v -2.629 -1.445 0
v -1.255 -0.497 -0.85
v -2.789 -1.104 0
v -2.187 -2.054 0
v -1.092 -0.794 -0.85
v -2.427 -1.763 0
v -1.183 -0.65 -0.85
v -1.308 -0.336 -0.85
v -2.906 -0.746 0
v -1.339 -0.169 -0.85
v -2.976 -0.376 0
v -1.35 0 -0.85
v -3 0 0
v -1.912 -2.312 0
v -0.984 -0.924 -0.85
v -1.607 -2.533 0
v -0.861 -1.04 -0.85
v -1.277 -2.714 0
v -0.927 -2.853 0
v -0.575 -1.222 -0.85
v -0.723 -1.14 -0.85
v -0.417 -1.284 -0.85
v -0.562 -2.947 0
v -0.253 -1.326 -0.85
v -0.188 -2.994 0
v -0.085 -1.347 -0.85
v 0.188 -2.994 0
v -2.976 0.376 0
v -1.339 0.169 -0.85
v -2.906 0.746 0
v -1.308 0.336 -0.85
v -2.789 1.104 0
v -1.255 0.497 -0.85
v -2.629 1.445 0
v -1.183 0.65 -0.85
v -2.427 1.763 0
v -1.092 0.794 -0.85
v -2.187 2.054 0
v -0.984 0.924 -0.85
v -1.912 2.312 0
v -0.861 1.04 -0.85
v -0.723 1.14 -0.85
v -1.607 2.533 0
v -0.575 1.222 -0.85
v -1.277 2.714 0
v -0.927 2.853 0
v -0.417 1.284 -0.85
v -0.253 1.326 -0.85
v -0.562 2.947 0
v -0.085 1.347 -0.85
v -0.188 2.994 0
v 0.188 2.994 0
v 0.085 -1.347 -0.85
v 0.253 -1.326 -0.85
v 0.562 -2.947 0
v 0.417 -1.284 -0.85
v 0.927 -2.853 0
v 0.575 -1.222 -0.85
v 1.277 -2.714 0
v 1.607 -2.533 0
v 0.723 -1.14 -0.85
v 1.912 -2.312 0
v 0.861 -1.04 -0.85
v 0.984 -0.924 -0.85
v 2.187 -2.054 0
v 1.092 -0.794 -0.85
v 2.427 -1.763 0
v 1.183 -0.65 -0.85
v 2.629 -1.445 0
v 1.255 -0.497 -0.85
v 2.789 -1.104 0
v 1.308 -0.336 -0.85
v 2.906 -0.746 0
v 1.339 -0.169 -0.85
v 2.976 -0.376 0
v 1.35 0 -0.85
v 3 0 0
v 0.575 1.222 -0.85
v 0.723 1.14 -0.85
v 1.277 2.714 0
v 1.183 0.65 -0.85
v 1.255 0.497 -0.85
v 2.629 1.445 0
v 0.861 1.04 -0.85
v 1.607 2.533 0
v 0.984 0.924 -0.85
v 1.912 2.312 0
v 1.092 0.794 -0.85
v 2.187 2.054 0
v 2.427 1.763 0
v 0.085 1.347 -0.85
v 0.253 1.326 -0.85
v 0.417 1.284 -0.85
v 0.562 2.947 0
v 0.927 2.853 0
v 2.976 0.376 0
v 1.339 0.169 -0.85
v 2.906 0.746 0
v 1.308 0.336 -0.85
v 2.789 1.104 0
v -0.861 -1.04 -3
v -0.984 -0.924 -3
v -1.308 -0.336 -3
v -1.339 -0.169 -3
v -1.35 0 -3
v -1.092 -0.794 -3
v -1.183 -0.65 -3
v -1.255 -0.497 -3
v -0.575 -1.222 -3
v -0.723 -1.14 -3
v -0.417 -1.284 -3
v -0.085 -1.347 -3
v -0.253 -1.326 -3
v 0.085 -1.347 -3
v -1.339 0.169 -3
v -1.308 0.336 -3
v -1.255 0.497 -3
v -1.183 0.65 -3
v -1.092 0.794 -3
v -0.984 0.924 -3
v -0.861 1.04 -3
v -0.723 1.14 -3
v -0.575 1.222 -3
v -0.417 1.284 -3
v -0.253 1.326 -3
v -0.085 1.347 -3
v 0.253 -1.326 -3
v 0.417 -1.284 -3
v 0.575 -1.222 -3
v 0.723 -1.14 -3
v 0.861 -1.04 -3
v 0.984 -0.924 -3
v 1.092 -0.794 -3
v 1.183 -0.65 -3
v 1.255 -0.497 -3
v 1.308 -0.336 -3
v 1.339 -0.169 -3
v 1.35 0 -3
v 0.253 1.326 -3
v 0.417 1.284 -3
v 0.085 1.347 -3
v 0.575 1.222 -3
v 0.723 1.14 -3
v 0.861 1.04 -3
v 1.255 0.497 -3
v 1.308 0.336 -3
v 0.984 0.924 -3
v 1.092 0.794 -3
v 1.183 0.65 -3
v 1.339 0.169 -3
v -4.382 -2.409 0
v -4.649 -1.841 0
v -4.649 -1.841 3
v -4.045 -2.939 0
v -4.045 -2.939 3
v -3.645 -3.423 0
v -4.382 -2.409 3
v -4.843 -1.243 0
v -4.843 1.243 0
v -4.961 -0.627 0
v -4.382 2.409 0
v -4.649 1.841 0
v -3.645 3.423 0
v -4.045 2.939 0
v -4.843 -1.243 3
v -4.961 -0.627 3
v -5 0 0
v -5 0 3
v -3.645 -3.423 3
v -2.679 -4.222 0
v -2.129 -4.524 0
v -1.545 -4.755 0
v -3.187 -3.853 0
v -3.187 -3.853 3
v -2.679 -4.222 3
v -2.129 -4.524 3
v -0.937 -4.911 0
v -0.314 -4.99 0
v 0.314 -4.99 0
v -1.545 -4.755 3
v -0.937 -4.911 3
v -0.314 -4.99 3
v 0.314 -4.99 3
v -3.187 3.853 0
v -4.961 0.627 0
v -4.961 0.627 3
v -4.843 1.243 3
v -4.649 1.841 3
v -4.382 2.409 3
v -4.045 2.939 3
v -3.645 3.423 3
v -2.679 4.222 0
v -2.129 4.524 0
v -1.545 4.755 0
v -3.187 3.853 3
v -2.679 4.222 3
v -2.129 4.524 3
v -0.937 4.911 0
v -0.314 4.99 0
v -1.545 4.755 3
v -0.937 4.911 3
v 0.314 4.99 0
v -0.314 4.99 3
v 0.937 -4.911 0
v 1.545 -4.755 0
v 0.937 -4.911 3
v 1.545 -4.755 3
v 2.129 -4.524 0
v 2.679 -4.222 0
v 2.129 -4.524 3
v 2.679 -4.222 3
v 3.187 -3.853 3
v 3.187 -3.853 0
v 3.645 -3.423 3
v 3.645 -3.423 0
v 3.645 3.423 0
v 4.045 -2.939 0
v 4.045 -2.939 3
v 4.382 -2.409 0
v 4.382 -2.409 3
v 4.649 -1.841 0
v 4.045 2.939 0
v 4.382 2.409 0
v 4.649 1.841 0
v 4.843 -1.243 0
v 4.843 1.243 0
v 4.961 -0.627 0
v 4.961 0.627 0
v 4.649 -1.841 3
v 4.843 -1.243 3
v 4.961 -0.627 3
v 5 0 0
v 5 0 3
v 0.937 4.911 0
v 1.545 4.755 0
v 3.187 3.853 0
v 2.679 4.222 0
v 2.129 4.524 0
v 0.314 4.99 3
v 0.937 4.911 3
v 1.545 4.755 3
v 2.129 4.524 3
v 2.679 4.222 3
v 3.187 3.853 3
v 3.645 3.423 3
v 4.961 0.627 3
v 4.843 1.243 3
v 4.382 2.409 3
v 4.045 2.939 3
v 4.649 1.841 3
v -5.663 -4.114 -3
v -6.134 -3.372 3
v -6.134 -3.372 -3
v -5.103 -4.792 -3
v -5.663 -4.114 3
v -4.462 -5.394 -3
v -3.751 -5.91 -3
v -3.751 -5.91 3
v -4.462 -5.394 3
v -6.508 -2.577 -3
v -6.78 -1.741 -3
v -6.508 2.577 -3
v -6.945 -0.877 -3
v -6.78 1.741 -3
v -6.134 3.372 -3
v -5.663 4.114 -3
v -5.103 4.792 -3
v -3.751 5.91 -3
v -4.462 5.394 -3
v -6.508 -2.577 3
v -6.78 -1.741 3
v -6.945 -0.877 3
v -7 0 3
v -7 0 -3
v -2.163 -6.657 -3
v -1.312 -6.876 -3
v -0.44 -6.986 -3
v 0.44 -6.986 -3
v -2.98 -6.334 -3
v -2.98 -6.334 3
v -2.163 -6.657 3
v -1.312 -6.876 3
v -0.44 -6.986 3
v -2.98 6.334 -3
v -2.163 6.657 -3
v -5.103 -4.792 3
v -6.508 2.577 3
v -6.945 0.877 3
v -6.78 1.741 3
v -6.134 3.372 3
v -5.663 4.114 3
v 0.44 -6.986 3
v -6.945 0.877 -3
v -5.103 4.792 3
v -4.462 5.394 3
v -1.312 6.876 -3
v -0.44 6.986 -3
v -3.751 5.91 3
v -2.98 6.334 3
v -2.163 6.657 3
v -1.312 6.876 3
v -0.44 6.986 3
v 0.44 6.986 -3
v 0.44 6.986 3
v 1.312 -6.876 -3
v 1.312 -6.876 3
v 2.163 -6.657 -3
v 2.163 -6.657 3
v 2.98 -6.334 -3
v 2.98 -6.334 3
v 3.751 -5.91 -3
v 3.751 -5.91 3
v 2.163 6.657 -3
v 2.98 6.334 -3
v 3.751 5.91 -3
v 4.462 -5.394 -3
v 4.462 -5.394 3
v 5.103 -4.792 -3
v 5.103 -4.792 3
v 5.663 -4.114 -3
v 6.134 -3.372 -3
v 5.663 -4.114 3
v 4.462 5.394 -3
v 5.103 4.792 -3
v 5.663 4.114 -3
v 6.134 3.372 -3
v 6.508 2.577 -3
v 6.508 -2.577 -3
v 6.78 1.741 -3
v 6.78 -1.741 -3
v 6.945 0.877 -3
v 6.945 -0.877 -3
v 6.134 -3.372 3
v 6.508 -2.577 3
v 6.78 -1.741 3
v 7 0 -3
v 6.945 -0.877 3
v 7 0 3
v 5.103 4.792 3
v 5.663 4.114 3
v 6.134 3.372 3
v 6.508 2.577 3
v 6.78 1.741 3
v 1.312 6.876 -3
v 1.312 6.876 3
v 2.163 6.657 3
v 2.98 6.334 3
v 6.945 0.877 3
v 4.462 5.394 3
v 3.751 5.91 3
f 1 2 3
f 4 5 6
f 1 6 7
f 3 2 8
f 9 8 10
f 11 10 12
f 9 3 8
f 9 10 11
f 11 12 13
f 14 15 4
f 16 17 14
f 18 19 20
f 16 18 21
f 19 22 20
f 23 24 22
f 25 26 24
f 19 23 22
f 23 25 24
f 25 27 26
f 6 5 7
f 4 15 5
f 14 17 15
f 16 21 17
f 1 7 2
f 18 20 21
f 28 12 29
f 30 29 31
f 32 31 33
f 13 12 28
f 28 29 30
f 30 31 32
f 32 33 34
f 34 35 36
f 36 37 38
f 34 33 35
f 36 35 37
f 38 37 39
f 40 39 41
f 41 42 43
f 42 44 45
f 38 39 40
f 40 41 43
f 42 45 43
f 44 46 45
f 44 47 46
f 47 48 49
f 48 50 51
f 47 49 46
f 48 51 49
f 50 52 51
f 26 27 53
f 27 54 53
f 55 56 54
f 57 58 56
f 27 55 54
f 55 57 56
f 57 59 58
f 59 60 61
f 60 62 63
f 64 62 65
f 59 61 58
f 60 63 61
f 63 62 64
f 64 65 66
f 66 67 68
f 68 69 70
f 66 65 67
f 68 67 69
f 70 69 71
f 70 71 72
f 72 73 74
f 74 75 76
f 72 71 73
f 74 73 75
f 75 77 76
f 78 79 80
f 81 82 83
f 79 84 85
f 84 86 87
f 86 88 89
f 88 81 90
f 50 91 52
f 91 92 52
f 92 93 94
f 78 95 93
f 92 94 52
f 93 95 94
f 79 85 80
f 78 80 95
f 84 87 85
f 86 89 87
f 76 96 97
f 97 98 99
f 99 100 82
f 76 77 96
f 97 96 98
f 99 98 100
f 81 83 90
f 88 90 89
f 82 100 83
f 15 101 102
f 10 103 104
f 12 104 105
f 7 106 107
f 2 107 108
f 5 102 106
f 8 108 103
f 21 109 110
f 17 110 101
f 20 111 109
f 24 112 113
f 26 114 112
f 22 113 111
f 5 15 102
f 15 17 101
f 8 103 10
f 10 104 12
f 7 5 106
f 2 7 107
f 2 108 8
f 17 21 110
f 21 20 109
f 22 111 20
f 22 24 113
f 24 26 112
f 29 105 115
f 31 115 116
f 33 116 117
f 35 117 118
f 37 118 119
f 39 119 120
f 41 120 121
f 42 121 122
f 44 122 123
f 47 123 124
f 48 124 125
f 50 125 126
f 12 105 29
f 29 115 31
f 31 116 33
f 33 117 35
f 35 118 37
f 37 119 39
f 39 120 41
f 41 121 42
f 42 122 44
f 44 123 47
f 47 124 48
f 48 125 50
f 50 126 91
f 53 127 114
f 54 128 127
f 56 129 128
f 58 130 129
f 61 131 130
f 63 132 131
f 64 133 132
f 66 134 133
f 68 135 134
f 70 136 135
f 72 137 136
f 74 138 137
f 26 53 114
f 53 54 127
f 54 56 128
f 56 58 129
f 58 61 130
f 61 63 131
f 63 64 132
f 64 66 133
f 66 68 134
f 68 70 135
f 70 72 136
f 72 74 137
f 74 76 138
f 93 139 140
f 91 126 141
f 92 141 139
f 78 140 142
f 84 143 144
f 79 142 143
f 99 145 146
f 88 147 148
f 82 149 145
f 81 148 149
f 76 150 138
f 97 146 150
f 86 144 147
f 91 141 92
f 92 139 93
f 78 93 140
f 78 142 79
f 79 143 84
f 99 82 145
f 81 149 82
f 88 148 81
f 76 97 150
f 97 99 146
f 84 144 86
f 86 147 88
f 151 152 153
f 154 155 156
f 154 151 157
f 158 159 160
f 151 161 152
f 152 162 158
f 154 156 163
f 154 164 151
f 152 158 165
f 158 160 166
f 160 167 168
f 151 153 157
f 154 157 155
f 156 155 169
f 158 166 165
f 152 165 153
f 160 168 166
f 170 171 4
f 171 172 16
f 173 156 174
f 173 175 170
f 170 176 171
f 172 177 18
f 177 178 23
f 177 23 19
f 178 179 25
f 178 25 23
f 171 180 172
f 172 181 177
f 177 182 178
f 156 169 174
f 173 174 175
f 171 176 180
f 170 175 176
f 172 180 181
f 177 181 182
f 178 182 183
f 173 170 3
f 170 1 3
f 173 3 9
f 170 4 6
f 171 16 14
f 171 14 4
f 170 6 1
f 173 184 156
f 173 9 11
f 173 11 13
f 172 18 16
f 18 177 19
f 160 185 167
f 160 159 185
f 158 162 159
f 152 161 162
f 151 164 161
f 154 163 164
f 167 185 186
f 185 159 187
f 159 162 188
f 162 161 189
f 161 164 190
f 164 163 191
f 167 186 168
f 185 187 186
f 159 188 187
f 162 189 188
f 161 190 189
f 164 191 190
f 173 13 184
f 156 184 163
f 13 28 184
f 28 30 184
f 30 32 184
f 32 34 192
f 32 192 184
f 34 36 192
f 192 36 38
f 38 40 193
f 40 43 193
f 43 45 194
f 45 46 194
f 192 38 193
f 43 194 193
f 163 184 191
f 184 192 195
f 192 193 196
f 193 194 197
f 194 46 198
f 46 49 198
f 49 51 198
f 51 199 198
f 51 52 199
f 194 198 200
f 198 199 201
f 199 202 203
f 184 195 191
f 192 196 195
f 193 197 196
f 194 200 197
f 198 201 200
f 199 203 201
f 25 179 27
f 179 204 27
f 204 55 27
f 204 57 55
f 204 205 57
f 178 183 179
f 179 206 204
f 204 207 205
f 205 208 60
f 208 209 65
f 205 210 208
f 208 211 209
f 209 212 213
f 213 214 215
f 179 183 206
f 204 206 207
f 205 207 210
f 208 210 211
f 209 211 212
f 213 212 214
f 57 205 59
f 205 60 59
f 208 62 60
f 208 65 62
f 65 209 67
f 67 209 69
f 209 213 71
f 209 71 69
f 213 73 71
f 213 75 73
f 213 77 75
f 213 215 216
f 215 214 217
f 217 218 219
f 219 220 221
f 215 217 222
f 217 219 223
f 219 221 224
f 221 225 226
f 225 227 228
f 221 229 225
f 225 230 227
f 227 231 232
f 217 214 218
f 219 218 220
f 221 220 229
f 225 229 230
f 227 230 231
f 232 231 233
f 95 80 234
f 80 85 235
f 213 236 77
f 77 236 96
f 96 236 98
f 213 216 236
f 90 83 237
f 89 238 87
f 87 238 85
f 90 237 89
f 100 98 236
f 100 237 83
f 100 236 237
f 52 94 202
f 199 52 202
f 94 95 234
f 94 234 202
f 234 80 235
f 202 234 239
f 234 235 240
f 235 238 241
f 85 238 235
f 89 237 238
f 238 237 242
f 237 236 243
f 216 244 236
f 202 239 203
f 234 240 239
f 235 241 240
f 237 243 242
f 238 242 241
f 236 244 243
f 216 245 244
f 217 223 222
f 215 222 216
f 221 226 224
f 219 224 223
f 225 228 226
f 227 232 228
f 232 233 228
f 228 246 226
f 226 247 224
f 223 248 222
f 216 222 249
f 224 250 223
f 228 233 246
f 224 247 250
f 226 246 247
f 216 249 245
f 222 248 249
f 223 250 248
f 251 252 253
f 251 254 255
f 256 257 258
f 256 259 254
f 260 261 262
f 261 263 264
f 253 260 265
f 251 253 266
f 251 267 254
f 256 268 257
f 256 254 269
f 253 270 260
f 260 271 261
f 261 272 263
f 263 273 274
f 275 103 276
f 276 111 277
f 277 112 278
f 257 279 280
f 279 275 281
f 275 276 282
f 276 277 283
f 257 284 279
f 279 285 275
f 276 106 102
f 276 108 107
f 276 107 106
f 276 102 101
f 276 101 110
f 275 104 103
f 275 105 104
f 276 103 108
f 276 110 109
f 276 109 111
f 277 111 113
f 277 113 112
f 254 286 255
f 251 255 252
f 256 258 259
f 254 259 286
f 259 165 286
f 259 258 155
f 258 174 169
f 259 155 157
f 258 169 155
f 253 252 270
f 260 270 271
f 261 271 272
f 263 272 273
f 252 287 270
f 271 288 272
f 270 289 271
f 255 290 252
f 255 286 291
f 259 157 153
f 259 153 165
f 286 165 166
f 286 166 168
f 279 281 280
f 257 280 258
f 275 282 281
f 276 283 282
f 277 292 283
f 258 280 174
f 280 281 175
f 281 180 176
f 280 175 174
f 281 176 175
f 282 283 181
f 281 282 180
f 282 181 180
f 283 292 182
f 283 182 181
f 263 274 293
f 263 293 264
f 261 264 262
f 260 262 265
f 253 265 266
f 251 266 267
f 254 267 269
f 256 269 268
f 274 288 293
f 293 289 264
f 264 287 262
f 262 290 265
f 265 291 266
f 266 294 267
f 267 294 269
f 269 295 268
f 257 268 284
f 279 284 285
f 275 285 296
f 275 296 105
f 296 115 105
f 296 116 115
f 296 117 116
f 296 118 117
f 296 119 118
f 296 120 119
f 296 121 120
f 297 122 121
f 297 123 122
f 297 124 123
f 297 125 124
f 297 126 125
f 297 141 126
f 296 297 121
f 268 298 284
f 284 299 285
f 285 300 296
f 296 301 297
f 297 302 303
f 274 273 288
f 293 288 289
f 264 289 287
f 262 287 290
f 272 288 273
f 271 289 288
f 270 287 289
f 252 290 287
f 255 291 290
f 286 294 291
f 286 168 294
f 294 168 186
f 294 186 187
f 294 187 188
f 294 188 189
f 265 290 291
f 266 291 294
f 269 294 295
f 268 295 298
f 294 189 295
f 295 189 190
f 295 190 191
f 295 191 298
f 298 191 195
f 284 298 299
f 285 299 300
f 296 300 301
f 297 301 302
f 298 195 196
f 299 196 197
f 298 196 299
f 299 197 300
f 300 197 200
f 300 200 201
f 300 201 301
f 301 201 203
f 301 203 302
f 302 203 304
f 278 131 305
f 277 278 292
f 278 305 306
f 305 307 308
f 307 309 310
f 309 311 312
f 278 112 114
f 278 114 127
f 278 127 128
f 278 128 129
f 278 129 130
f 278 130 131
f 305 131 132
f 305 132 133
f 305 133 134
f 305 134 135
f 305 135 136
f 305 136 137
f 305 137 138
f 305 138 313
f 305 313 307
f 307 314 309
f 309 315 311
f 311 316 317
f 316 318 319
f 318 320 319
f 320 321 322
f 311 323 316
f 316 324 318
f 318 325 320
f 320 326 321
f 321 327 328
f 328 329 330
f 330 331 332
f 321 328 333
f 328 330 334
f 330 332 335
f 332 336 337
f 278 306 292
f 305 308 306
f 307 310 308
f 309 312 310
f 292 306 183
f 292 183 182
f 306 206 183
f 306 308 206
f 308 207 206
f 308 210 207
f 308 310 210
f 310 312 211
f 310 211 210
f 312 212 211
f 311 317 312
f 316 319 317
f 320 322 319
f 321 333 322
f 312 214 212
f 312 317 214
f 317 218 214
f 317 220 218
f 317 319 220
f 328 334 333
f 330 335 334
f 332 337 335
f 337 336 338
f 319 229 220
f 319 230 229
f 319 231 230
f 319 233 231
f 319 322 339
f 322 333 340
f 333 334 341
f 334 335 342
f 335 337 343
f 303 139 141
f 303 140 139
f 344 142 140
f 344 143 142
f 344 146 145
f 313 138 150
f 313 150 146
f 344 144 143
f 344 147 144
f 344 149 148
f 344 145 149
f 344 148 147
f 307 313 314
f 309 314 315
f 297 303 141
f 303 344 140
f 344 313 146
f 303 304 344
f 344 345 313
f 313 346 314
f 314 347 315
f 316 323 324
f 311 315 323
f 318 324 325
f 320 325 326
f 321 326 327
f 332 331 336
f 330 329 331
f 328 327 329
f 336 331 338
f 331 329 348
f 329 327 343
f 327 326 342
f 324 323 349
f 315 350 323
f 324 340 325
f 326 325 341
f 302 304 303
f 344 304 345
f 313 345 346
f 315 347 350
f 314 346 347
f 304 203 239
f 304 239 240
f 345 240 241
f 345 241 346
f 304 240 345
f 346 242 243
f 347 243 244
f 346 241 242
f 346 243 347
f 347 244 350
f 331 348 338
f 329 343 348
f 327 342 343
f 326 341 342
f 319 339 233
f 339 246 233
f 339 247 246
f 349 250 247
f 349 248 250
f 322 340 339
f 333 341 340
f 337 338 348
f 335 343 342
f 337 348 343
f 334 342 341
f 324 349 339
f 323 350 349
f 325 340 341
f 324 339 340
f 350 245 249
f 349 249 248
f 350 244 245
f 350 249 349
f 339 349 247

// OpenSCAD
$fn = 50;


difference() {
	union() {
		translate(v = [0, 0, -3.0000000000]) {
			cylinder(h = 6, r = 7.0000000000);
		}
	}
	union() {
		translate(v = [0, 0, 0]) {
			rotate(a = [0, 0, 0]) {
				difference() {
					union() {
						translate(v = [0, 0, -6.0000000000]) {
							cylinder(h = 6, r = 1.0000000000);
						}
						translate(v = [0, 0, -0.8500000000]) {
							cylinder(h = 0.8500000000, r1 = 1.3500000000, r2 = 3.0000000000);
						}
						translate(v = [0, 0, -6.0000000000]) {
							cylinder(h = 6, r = 1.3500000000);
						}
						translate(v = [0, 0, -6.0000000000]) {
							cylinder(h = 6, r = 1.0000000000);
						}
					}
					union();
				}
			}
		}
		#cylinder(h = 3, r = 5.0000000000);
	}
}
